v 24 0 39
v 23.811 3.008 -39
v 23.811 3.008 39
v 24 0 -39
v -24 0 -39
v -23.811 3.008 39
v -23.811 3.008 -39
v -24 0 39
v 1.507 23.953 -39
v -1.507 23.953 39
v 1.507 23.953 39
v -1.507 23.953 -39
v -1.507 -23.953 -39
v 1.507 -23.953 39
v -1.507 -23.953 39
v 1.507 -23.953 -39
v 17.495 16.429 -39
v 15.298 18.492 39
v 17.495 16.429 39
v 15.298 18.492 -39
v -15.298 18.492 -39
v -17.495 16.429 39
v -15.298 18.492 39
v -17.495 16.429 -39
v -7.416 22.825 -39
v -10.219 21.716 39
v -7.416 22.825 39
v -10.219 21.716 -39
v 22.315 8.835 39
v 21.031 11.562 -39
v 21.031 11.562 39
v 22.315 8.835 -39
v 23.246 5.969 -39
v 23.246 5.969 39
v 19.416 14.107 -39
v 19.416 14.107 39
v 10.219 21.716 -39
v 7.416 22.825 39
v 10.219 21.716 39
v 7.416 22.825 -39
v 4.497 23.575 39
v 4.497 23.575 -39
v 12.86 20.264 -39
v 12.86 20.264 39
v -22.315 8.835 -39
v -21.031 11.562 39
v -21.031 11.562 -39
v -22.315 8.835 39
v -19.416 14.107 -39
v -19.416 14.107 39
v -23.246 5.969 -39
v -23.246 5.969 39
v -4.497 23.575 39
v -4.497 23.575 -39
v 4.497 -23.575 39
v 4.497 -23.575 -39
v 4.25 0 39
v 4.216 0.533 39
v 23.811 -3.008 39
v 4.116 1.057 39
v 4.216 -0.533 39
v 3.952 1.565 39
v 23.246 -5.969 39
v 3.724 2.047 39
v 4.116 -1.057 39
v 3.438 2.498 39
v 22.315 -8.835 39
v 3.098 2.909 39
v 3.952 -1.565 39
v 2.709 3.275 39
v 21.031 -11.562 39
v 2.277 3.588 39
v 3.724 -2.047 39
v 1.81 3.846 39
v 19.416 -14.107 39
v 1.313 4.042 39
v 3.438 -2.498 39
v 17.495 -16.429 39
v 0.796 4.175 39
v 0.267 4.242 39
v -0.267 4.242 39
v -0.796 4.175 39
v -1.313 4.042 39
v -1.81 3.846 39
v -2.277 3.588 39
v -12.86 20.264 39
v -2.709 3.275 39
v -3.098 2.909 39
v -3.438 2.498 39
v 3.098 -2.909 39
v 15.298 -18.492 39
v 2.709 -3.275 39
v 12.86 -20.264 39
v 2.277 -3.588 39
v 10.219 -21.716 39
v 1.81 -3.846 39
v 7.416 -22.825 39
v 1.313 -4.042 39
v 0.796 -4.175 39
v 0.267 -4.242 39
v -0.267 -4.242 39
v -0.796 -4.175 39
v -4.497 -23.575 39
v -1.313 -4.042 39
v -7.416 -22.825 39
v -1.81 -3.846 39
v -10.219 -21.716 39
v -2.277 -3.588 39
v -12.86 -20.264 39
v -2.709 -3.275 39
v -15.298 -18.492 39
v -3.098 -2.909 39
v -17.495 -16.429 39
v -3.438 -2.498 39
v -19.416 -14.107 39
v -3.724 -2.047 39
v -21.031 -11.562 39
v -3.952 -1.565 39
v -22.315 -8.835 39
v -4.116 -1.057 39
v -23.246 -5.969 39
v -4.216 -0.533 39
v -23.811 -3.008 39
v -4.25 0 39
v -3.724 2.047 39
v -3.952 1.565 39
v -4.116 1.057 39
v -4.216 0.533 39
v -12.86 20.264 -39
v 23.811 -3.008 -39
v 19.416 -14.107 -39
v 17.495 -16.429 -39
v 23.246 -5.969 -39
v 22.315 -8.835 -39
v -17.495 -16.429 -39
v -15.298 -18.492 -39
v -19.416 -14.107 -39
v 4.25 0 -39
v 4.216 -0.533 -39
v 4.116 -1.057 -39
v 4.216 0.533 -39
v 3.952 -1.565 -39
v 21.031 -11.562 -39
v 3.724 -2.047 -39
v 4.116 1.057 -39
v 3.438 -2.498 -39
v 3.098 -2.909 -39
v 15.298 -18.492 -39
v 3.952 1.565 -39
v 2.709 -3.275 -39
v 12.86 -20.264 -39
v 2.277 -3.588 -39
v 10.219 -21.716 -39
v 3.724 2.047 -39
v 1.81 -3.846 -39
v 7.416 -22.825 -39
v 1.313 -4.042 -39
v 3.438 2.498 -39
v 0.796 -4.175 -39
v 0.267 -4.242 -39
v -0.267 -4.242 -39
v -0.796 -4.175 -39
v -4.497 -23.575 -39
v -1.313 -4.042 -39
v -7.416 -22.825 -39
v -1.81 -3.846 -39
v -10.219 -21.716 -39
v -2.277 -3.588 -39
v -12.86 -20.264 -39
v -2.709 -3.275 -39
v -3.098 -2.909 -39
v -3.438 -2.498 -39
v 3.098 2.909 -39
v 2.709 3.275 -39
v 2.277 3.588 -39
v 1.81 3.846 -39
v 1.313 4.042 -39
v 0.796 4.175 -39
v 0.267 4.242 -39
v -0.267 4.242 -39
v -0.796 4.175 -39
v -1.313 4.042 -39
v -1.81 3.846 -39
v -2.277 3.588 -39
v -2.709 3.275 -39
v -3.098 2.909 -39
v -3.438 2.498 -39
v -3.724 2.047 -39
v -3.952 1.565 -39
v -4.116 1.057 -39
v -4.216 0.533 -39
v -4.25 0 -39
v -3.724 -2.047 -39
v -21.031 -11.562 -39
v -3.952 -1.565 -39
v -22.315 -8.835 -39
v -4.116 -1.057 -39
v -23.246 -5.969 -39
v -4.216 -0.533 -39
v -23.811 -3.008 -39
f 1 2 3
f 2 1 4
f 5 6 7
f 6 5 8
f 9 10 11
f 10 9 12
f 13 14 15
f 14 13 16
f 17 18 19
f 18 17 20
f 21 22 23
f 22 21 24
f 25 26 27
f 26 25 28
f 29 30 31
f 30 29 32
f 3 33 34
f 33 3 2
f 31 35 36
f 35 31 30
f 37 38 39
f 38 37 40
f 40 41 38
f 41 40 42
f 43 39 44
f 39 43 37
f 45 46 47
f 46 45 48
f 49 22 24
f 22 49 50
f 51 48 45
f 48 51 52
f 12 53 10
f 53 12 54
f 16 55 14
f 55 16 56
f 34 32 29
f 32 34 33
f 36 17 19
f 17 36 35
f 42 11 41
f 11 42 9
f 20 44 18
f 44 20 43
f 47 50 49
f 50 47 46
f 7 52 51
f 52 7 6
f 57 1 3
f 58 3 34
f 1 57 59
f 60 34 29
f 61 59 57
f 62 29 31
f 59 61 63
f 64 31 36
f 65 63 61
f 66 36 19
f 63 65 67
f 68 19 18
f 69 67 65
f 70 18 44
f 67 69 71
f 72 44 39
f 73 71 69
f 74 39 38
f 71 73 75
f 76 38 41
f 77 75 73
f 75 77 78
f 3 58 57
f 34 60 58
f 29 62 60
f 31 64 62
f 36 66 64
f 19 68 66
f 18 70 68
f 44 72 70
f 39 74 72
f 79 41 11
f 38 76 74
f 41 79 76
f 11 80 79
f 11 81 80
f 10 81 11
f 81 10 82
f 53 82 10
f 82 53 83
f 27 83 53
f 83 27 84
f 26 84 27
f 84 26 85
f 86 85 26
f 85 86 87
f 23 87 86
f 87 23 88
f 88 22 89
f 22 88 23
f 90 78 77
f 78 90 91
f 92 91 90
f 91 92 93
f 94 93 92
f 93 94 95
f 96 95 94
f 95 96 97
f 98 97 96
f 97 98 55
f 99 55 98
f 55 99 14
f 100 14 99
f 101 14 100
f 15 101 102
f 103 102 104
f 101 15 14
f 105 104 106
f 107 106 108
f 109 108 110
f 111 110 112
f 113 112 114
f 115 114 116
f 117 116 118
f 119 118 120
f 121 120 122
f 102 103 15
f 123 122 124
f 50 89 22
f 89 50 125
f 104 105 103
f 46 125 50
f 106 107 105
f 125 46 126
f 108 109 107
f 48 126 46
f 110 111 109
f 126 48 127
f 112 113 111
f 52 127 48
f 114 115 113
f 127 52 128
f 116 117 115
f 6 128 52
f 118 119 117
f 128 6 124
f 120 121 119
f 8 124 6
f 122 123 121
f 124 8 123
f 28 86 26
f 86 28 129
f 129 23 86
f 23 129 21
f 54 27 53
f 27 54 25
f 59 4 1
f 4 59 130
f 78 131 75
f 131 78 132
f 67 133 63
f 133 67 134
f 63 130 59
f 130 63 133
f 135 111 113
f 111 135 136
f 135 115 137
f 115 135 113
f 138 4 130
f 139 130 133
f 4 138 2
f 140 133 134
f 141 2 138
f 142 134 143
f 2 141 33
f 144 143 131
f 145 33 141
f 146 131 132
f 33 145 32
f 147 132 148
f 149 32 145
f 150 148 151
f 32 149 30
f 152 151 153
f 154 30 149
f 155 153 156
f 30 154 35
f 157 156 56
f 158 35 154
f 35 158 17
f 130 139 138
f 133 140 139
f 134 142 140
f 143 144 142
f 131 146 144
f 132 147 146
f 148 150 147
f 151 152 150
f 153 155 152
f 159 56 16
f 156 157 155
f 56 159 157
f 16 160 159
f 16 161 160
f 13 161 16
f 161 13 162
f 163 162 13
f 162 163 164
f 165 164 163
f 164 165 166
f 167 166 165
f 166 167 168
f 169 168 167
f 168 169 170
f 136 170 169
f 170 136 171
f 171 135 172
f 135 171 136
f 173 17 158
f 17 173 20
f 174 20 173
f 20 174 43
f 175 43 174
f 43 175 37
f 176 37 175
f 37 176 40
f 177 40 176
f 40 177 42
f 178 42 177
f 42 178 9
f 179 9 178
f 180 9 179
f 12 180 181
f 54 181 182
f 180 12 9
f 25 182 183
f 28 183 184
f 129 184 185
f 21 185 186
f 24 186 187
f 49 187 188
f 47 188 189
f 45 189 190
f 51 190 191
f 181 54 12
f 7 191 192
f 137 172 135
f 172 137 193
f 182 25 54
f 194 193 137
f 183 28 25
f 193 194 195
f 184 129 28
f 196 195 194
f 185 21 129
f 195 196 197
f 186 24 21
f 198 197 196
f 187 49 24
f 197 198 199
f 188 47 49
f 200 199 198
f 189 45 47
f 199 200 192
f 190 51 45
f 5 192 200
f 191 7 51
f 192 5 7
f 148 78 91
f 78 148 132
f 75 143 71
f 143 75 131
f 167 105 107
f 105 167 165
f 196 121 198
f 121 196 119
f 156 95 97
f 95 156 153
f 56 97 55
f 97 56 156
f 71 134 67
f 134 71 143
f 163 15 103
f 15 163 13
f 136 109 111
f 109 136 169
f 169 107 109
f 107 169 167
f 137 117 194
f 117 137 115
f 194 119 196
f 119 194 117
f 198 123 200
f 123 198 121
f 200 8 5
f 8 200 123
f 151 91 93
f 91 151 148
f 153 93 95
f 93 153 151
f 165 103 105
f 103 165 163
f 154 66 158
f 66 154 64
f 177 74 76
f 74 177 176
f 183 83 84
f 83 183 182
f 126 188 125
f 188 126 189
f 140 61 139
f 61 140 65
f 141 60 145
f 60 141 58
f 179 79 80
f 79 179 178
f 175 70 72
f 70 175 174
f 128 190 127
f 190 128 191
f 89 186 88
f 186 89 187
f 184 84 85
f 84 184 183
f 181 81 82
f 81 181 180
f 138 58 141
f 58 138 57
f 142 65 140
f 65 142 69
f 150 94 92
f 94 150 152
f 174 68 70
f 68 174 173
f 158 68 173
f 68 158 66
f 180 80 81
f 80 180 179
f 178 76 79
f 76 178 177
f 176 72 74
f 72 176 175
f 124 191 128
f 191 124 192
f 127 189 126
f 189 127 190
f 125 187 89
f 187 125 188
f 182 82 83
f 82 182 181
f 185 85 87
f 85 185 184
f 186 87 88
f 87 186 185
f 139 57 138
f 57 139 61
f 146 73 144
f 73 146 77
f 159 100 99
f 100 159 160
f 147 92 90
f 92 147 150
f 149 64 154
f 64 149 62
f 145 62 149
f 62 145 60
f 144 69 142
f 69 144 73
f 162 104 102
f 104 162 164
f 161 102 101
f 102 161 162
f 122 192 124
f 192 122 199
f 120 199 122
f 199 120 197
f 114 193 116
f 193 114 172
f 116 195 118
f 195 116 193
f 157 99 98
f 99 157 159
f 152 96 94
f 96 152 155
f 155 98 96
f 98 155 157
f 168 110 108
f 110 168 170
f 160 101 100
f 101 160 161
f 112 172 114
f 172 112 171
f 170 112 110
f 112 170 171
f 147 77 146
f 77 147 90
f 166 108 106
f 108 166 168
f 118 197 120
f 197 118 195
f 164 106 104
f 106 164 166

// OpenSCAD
$fn = 50;


difference() {
	union() {
		translate(v = [0, 0, -39.0000000000]) {
			cylinder(h = 78, r = 24.0000000000);
		}
	}
	union() {
		translate(v = [0, 0, -100.0000000000]) {
			cylinder(h = 200, r = 4.2500000000);
		}
	}
}
